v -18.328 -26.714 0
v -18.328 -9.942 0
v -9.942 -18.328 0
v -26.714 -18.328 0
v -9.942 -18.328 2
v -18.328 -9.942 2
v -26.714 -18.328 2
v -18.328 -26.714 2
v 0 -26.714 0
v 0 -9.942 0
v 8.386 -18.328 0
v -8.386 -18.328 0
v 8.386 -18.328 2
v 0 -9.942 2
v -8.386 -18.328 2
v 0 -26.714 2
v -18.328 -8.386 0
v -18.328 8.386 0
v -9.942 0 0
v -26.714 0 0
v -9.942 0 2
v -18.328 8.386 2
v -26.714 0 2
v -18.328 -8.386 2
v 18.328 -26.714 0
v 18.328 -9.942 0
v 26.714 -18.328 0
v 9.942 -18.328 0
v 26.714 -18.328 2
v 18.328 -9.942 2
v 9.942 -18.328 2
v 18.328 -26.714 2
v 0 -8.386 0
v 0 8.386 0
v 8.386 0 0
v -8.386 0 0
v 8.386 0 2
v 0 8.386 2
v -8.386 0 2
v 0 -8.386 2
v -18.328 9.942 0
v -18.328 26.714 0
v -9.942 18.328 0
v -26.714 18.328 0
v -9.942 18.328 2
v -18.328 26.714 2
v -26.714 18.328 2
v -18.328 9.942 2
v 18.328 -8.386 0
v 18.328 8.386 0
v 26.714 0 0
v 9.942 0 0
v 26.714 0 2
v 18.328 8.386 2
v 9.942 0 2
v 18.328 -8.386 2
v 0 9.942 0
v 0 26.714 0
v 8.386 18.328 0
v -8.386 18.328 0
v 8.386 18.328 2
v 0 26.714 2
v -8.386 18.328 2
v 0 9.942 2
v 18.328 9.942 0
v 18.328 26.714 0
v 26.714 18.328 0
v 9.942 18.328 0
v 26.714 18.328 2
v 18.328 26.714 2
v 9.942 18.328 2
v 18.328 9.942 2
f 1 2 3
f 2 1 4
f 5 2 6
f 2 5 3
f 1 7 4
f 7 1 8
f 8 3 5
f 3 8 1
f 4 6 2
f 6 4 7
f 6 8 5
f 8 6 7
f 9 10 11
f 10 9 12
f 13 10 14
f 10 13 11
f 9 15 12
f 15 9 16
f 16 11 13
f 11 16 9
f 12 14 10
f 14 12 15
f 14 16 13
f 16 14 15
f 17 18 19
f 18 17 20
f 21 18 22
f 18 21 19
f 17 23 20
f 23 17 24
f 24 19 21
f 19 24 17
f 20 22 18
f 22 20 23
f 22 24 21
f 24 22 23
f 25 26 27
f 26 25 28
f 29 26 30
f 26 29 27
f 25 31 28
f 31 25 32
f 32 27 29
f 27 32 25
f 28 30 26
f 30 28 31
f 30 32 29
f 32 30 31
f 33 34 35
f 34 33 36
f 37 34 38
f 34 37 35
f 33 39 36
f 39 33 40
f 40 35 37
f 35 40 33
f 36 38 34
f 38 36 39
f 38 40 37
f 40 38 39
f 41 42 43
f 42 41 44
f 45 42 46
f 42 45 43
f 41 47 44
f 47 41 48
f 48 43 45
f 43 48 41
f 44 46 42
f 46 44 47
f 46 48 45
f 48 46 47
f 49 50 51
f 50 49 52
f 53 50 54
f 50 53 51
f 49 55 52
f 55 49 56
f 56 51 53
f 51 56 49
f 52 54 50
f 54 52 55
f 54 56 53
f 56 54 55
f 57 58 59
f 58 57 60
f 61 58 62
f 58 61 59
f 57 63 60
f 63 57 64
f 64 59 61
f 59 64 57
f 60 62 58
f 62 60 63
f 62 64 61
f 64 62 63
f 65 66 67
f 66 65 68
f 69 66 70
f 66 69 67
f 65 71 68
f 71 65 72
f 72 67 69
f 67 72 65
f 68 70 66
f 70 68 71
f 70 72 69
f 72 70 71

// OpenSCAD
// file: bellum_text_traced.scad
// bellum_text_traced.scad
// "Bellum" lettering traced from the source logo image with
// OpenCV (4x cubic upscale, threshold, morphological cleanup,
// approxPolyDP 2px). Coordinates are centered, Y-up, and
// normalized to 100 units of total width.
// Regenerate with scratchpad/trace2_emit.py if retuning.

module bellum_traced_2d() {
    polygon(points=[[-49.89,10.25],[-49.89,9.49],[-49.35,8.94],[-46.95,8.83],[-45.64,7.74],[-45.09,6.11],[-45.42,-2.07],[-45.09,-10.25],[-46.07,-11.56],[-49.24,-11.89],[-49.56,-12.32],[-49.45,-13.30],[-30.59,-13.41],[-28.08,-12.87],[-26.23,-11.45],[-25.03,-9.27],[-24.48,-6.65],[-25.03,-4.80],[-26.01,-3.27],[-29.28,-0.55],[-27.10,2.84],[-27.32,5.78],[-27.97,6.98],[-29.28,8.29],[-31.13,9.38],[-35.50,10.36],[-40.62,-1.42],[-39.97,-0.98],[-35.06,-0.98],[-33.10,-1.31],[-31.68,-1.96],[-30.04,-3.60],[-29.06,-5.89],[-29.06,-7.96],[-29.83,-9.49],[-31.35,-10.91],[-33.86,-11.67],[-37.35,-11.89],[-39.97,-11.34],[-40.95,-10.25],[-41.38,8.40],[-40.84,8.83],[-38.99,9.05],[-35.93,8.83],[-33.32,7.85],[-31.57,6.32],[-30.92,4.91],[-31.24,2.40],[-32.55,0.98],[-33.86,0.33],[-39.31,0.00],[-40.29,0.44],[-40.95,1.53],[-41.49,6.22]], paths=[[0, 1, 2, 3, 4, 5, 6, 7, 8, 9, 10, 11, 12, 13, 14, 15, 16, 17, 18, 19, 20, 21, 22, 23, 24, 25], [26, 27, 28, 29, 30, 31, 32, 33, 34, 35, 36, 37, 38, 39], [40, 41, 42, 43, 44, 45, 46, 47, 48, 49, 50, 51, 52, 53]]);
    polygon(points=[[-21.76,1.53],[-23.28,-0.44],[-23.72,-1.85],[-23.72,-3.82],[-22.96,-6.22],[-21.54,-7.63],[-19.79,-8.40],[-15.43,-8.40],[-13.69,-8.07],[-12.05,-7.09],[-10.09,-5.13],[-10.31,-4.69],[-11.07,-4.58],[-13.36,-6.43],[-15.76,-7.20],[-18.27,-6.54],[-20.34,-4.47],[-20.77,-3.49],[-20.67,-2.62],[-20.01,-2.18],[-18.48,-2.07],[-12.70,-2.40],[-12.05,-1.96],[-12.27,0.00],[-13.90,1.96],[-16.30,2.94],[-19.68,2.62],[-20.34,-0.22],[-19.47,0.98],[-17.61,1.96],[-15.98,1.53],[-14.78,0.00],[-14.99,-0.76],[-15.98,-0.98],[-20.01,-0.98]], paths=[[0, 1, 2, 3, 4, 5, 6, 7, 8, 9, 10, 11, 12, 13, 14, 15, 16, 17, 18, 19, 20, 21, 22, 23, 24, 25, 26], [27, 28, 29, 30, 31, 32, 33, 34]]);
    polygon(points=[[-3.87,12.98],[-4.85,12.87],[-6.60,12.00],[-8.02,10.80],[-7.80,10.25],[-6.49,9.60],[-6.16,8.62],[-6.16,-3.93],[-6.49,-6.54],[-7.36,-7.20],[-8.67,-7.31],[-9.00,-7.74],[-8.89,-8.29],[-8.23,-8.62],[-1.04,-8.40],[-1.04,-7.85],[-1.47,-7.42],[-3.44,-6.98],[-3.98,-5.78],[-3.76,11.01],[-3.44,11.67],[-3.44,12.54]], paths=[[0, 1, 2, 3, 4, 5, 6, 7, 8, 9, 10, 11, 12, 13, 14, 15, 16, 17, 18, 19, 20, 21]]);
    polygon(points=[[5.07,13.52],[4.31,13.41],[0.82,11.56],[-0.16,10.47],[0.27,9.71],[1.47,10.03],[2.13,9.49],[2.34,7.85],[2.24,-5.45],[1.58,-7.20],[-0.05,-7.63],[0.05,-8.18],[0.93,-8.51],[7.25,-8.51],[7.58,-8.18],[6.92,-7.20],[6.05,-7.20],[5.07,-6.32],[5.18,-1.85],[4.85,-0.65],[5.18,0.33],[5.18,11.34],[5.73,12.54],[5.62,13.20]], paths=[[0, 1, 2, 3, 4, 5, 6, 7, 8, 9, 10, 11, 12, 13, 14, 15, 16, 17, 18, 19, 20, 21, 22, 23]]);
    polygon(points=[[9.00,1.64],[9.11,0.87],[10.09,0.76],[10.74,0.00],[11.07,-0.98],[11.07,-5.56],[11.61,-7.31],[12.60,-8.18],[13.36,-8.51],[16.19,-8.51],[18.92,-7.31],[19.47,-7.31],[20.12,-8.18],[20.67,-8.29],[23.83,-8.18],[24.48,-7.74],[24.37,-6.87],[23.17,-6.87],[22.52,-6.32],[22.19,-0.33],[22.63,0.55],[23.61,1.31],[23.72,2.07],[17.83,2.18],[17.72,1.64],[19.25,0.98],[19.68,0.22],[19.68,-4.58],[18.38,-6.32],[16.74,-6.87],[15.65,-6.87],[14.67,-6.43],[13.69,-4.80],[13.69,0.22],[14.67,2.07],[10.41,2.29]], paths=[[0, 1, 2, 3, 4, 5, 6, 7, 8, 9, 10, 11, 12, 13, 14, 15, 16, 17, 18, 19, 20, 21, 22, 23, 24, 25, 26, 27, 28, 29, 30, 31, 32, 33, 34, 35]]);
    polygon(points=[[27.21,1.85],[27.21,1.20],[28.95,0.11],[29.06,-6.22],[28.52,-7.20],[26.55,-7.52],[26.44,-8.29],[26.77,-8.62],[30.59,-8.83],[32.99,-8.62],[33.53,-8.29],[33.10,-7.31],[32.12,-7.20],[31.57,-6.65],[31.57,-0.87],[32.22,0.00],[34.41,0.98],[36.04,0.76],[36.70,0.11],[37.24,-1.53],[37.24,-6.00],[36.91,-6.76],[35.50,-7.74],[35.61,-8.18],[36.48,-8.51],[40.84,-8.51],[41.60,-8.07],[41.60,-7.74],[40.51,-7.20],[39.97,-6.43],[39.97,-1.96],[40.73,-0.55],[42.91,0.98],[44.66,0.65],[45.53,-0.33],[45.75,-1.09],[45.53,-6.43],[44.98,-7.20],[44.00,-7.52],[43.78,-8.07],[44.66,-8.51],[49.45,-8.62],[50.00,-8.18],[49.56,-7.42],[48.80,-7.42],[48.15,-6.76],[48.36,0.00],[47.93,1.31],[46.51,2.62],[43.68,2.94],[41.82,2.07],[40.29,0.87],[39.86,0.87],[38.66,2.51],[37.35,2.94],[34.95,2.51],[32.22,1.20],[31.46,1.42],[31.79,2.62],[31.24,3.05],[29.28,2.94]], paths=[[0, 1, 2, 3, 4, 5, 6, 7, 8, 9, 10, 11, 12, 13, 14, 15, 16, 17, 18, 19, 20, 21, 22, 23, 24, 25, 26, 27, 28, 29, 30, 31, 32, 33, 34, 35, 36, 37, 38, 39, 40, 41, 42, 43, 44, 45, 46, 47, 48, 49, 50, 51, 52, 53, 54, 55, 56, 57, 58, 59, 60]]);
}

bellum_traced_2d();
// file: bellum_badge_003.scad
// bellum_badge_003.scad
// v003: corrected layout, measured from the source photo. The design is
//   ONE continuous 45-degree checkerboard filling the whole circle with
//   thin white grout lines and a black tile at dead center - v001/v002's
//   "inner bordered diamond on a solid black ring" was a misreading of
//   the photo (the "border" was grout diagonals, the "black ring" was
//   glare on the glossy button). Proportions from the photo: tile pitch
//   ~0.162 D, grout ~0.008 D, text width ~0.86 D, centered.
// v002: "Bellum" lettering traced from the photo (bellum_text_traced.scad).
//
// Printable parts (print in the named color, glue together):
//   base_disc()          black - 3 mm circle; shows through the lattice
//                        holes as the black tiles
//   white_lattice()      white - 2 mm circle-wide lattice: white tiles +
//                        grout webs, one connected piece
//   black_tiles()        black - optional drop-ins for the full (unclipped)
//                        black tiles, if you want them flush
//   text_plate_black()   black - outline plate behind the letters
//   text_letters_white() white - "Bellum" letters (6 pieces), glue on plate
//
// Everything scales from badge_d; thicknesses and clearance are absolute.

$fa = 2;
$fs = 0.4;

// ---- scale ----
badge_d = 80;       // badge diameter: THE scale knob

// ---- thicknesses (absolute mm, independent of badge_d) ----
t_base = 3;         // black disc
t_top  = 2;         // white lattice and drop-in tiles (total badge = 5)
t_text = 1.2;       // each text layer (plate and letters)
clr    = 0.15;      // per-side XY clearance for the drop-in tiles

// ---- proportions (fractions of badge_d, measured from the photo) ----
pitch_frac = 0.162;                     // checker pitch (tile + grout)
grout_w   = max(0.008 * badge_d, 0.8);  // white web between tiles
text_w    = 0.86 * badge_d;             // width of "Bellum"
outline_w = max(0.015 * badge_d, 1.2);  // black outline around the letters

use <bellum_text_traced.scad>  // lettering traced from the logo photo

// ---- derived ----
R     = badge_d / 2;
pitch = pitch_frac * badge_d;
tile  = pitch - grout_w;                // black/white tile side
half_diag = tile / sqrt(2);             // rotated tile half-diagonal
range = ceil(R / pitch) + 1;

eps = 0.01;

// ---------------- 2D shapes ----------------

// black tile centers: (i+j) even puts a black tile at the exact center
module black_squares_2d(shrink = 0) {
    rotate(45)
        for (i = [-range : range], j = [-range : range])
            if ((i + j) % 2 == 0)
                translate([i * pitch, j * pitch])
                    square(tile - 2 * shrink, center = true);
}

// white tiles + grout webs across the whole circle, one connected piece
module lattice_2d() {
    difference() {
        circle(R);
        black_squares_2d();
    }
}

// traced lettering is normalized to 100 units wide, centered
module text_2d() {
    scale(text_w / 100) bellum_traced_2d();
}

// ---------------- printable parts (each flat on Z=0) ----------------

module base_disc() {
    linear_extrude(t_base) circle(R);
}

module white_lattice() {
    linear_extrude(t_top) lattice_2d();
}

// optional flush inlays for the black tiles that lie fully inside the rim
module black_tiles() {
    rotate(45)
        for (i = [-range : range], j = [-range : range])
            if ((i + j) % 2 == 0
                && norm([i, j]) * pitch + half_diag <= R - 1)
                translate([i * pitch, j * pitch])
                    linear_extrude(t_top)
                        square(tile - 2 * clr, center = true);
}

module text_plate_black() {
    linear_extrude(t_text) offset(r = outline_w) text_2d();
}

module text_letters_white() {
    linear_extrude(t_text) text_2d();
}

// ---------------- assembled preview ----------------

module assembly() {
    color([0.15, 0.15, 0.15]) base_disc();
    color("white") translate([0, 0, t_base]) white_lattice();
    color([0.15, 0.15, 0.15]) translate([0, 0, t_base + t_top])
        text_plate_black();
    color("white") translate([0, 0, t_base + t_top + t_text])
        text_letters_white();
}

assembly();
// main file
// bellum_badge_003_tiles.scad - print in BLACK (optional)
// Drop-in tiles to make the black squares flush with the white surface.
use <bellum_badge_003.scad>
black_tiles();
